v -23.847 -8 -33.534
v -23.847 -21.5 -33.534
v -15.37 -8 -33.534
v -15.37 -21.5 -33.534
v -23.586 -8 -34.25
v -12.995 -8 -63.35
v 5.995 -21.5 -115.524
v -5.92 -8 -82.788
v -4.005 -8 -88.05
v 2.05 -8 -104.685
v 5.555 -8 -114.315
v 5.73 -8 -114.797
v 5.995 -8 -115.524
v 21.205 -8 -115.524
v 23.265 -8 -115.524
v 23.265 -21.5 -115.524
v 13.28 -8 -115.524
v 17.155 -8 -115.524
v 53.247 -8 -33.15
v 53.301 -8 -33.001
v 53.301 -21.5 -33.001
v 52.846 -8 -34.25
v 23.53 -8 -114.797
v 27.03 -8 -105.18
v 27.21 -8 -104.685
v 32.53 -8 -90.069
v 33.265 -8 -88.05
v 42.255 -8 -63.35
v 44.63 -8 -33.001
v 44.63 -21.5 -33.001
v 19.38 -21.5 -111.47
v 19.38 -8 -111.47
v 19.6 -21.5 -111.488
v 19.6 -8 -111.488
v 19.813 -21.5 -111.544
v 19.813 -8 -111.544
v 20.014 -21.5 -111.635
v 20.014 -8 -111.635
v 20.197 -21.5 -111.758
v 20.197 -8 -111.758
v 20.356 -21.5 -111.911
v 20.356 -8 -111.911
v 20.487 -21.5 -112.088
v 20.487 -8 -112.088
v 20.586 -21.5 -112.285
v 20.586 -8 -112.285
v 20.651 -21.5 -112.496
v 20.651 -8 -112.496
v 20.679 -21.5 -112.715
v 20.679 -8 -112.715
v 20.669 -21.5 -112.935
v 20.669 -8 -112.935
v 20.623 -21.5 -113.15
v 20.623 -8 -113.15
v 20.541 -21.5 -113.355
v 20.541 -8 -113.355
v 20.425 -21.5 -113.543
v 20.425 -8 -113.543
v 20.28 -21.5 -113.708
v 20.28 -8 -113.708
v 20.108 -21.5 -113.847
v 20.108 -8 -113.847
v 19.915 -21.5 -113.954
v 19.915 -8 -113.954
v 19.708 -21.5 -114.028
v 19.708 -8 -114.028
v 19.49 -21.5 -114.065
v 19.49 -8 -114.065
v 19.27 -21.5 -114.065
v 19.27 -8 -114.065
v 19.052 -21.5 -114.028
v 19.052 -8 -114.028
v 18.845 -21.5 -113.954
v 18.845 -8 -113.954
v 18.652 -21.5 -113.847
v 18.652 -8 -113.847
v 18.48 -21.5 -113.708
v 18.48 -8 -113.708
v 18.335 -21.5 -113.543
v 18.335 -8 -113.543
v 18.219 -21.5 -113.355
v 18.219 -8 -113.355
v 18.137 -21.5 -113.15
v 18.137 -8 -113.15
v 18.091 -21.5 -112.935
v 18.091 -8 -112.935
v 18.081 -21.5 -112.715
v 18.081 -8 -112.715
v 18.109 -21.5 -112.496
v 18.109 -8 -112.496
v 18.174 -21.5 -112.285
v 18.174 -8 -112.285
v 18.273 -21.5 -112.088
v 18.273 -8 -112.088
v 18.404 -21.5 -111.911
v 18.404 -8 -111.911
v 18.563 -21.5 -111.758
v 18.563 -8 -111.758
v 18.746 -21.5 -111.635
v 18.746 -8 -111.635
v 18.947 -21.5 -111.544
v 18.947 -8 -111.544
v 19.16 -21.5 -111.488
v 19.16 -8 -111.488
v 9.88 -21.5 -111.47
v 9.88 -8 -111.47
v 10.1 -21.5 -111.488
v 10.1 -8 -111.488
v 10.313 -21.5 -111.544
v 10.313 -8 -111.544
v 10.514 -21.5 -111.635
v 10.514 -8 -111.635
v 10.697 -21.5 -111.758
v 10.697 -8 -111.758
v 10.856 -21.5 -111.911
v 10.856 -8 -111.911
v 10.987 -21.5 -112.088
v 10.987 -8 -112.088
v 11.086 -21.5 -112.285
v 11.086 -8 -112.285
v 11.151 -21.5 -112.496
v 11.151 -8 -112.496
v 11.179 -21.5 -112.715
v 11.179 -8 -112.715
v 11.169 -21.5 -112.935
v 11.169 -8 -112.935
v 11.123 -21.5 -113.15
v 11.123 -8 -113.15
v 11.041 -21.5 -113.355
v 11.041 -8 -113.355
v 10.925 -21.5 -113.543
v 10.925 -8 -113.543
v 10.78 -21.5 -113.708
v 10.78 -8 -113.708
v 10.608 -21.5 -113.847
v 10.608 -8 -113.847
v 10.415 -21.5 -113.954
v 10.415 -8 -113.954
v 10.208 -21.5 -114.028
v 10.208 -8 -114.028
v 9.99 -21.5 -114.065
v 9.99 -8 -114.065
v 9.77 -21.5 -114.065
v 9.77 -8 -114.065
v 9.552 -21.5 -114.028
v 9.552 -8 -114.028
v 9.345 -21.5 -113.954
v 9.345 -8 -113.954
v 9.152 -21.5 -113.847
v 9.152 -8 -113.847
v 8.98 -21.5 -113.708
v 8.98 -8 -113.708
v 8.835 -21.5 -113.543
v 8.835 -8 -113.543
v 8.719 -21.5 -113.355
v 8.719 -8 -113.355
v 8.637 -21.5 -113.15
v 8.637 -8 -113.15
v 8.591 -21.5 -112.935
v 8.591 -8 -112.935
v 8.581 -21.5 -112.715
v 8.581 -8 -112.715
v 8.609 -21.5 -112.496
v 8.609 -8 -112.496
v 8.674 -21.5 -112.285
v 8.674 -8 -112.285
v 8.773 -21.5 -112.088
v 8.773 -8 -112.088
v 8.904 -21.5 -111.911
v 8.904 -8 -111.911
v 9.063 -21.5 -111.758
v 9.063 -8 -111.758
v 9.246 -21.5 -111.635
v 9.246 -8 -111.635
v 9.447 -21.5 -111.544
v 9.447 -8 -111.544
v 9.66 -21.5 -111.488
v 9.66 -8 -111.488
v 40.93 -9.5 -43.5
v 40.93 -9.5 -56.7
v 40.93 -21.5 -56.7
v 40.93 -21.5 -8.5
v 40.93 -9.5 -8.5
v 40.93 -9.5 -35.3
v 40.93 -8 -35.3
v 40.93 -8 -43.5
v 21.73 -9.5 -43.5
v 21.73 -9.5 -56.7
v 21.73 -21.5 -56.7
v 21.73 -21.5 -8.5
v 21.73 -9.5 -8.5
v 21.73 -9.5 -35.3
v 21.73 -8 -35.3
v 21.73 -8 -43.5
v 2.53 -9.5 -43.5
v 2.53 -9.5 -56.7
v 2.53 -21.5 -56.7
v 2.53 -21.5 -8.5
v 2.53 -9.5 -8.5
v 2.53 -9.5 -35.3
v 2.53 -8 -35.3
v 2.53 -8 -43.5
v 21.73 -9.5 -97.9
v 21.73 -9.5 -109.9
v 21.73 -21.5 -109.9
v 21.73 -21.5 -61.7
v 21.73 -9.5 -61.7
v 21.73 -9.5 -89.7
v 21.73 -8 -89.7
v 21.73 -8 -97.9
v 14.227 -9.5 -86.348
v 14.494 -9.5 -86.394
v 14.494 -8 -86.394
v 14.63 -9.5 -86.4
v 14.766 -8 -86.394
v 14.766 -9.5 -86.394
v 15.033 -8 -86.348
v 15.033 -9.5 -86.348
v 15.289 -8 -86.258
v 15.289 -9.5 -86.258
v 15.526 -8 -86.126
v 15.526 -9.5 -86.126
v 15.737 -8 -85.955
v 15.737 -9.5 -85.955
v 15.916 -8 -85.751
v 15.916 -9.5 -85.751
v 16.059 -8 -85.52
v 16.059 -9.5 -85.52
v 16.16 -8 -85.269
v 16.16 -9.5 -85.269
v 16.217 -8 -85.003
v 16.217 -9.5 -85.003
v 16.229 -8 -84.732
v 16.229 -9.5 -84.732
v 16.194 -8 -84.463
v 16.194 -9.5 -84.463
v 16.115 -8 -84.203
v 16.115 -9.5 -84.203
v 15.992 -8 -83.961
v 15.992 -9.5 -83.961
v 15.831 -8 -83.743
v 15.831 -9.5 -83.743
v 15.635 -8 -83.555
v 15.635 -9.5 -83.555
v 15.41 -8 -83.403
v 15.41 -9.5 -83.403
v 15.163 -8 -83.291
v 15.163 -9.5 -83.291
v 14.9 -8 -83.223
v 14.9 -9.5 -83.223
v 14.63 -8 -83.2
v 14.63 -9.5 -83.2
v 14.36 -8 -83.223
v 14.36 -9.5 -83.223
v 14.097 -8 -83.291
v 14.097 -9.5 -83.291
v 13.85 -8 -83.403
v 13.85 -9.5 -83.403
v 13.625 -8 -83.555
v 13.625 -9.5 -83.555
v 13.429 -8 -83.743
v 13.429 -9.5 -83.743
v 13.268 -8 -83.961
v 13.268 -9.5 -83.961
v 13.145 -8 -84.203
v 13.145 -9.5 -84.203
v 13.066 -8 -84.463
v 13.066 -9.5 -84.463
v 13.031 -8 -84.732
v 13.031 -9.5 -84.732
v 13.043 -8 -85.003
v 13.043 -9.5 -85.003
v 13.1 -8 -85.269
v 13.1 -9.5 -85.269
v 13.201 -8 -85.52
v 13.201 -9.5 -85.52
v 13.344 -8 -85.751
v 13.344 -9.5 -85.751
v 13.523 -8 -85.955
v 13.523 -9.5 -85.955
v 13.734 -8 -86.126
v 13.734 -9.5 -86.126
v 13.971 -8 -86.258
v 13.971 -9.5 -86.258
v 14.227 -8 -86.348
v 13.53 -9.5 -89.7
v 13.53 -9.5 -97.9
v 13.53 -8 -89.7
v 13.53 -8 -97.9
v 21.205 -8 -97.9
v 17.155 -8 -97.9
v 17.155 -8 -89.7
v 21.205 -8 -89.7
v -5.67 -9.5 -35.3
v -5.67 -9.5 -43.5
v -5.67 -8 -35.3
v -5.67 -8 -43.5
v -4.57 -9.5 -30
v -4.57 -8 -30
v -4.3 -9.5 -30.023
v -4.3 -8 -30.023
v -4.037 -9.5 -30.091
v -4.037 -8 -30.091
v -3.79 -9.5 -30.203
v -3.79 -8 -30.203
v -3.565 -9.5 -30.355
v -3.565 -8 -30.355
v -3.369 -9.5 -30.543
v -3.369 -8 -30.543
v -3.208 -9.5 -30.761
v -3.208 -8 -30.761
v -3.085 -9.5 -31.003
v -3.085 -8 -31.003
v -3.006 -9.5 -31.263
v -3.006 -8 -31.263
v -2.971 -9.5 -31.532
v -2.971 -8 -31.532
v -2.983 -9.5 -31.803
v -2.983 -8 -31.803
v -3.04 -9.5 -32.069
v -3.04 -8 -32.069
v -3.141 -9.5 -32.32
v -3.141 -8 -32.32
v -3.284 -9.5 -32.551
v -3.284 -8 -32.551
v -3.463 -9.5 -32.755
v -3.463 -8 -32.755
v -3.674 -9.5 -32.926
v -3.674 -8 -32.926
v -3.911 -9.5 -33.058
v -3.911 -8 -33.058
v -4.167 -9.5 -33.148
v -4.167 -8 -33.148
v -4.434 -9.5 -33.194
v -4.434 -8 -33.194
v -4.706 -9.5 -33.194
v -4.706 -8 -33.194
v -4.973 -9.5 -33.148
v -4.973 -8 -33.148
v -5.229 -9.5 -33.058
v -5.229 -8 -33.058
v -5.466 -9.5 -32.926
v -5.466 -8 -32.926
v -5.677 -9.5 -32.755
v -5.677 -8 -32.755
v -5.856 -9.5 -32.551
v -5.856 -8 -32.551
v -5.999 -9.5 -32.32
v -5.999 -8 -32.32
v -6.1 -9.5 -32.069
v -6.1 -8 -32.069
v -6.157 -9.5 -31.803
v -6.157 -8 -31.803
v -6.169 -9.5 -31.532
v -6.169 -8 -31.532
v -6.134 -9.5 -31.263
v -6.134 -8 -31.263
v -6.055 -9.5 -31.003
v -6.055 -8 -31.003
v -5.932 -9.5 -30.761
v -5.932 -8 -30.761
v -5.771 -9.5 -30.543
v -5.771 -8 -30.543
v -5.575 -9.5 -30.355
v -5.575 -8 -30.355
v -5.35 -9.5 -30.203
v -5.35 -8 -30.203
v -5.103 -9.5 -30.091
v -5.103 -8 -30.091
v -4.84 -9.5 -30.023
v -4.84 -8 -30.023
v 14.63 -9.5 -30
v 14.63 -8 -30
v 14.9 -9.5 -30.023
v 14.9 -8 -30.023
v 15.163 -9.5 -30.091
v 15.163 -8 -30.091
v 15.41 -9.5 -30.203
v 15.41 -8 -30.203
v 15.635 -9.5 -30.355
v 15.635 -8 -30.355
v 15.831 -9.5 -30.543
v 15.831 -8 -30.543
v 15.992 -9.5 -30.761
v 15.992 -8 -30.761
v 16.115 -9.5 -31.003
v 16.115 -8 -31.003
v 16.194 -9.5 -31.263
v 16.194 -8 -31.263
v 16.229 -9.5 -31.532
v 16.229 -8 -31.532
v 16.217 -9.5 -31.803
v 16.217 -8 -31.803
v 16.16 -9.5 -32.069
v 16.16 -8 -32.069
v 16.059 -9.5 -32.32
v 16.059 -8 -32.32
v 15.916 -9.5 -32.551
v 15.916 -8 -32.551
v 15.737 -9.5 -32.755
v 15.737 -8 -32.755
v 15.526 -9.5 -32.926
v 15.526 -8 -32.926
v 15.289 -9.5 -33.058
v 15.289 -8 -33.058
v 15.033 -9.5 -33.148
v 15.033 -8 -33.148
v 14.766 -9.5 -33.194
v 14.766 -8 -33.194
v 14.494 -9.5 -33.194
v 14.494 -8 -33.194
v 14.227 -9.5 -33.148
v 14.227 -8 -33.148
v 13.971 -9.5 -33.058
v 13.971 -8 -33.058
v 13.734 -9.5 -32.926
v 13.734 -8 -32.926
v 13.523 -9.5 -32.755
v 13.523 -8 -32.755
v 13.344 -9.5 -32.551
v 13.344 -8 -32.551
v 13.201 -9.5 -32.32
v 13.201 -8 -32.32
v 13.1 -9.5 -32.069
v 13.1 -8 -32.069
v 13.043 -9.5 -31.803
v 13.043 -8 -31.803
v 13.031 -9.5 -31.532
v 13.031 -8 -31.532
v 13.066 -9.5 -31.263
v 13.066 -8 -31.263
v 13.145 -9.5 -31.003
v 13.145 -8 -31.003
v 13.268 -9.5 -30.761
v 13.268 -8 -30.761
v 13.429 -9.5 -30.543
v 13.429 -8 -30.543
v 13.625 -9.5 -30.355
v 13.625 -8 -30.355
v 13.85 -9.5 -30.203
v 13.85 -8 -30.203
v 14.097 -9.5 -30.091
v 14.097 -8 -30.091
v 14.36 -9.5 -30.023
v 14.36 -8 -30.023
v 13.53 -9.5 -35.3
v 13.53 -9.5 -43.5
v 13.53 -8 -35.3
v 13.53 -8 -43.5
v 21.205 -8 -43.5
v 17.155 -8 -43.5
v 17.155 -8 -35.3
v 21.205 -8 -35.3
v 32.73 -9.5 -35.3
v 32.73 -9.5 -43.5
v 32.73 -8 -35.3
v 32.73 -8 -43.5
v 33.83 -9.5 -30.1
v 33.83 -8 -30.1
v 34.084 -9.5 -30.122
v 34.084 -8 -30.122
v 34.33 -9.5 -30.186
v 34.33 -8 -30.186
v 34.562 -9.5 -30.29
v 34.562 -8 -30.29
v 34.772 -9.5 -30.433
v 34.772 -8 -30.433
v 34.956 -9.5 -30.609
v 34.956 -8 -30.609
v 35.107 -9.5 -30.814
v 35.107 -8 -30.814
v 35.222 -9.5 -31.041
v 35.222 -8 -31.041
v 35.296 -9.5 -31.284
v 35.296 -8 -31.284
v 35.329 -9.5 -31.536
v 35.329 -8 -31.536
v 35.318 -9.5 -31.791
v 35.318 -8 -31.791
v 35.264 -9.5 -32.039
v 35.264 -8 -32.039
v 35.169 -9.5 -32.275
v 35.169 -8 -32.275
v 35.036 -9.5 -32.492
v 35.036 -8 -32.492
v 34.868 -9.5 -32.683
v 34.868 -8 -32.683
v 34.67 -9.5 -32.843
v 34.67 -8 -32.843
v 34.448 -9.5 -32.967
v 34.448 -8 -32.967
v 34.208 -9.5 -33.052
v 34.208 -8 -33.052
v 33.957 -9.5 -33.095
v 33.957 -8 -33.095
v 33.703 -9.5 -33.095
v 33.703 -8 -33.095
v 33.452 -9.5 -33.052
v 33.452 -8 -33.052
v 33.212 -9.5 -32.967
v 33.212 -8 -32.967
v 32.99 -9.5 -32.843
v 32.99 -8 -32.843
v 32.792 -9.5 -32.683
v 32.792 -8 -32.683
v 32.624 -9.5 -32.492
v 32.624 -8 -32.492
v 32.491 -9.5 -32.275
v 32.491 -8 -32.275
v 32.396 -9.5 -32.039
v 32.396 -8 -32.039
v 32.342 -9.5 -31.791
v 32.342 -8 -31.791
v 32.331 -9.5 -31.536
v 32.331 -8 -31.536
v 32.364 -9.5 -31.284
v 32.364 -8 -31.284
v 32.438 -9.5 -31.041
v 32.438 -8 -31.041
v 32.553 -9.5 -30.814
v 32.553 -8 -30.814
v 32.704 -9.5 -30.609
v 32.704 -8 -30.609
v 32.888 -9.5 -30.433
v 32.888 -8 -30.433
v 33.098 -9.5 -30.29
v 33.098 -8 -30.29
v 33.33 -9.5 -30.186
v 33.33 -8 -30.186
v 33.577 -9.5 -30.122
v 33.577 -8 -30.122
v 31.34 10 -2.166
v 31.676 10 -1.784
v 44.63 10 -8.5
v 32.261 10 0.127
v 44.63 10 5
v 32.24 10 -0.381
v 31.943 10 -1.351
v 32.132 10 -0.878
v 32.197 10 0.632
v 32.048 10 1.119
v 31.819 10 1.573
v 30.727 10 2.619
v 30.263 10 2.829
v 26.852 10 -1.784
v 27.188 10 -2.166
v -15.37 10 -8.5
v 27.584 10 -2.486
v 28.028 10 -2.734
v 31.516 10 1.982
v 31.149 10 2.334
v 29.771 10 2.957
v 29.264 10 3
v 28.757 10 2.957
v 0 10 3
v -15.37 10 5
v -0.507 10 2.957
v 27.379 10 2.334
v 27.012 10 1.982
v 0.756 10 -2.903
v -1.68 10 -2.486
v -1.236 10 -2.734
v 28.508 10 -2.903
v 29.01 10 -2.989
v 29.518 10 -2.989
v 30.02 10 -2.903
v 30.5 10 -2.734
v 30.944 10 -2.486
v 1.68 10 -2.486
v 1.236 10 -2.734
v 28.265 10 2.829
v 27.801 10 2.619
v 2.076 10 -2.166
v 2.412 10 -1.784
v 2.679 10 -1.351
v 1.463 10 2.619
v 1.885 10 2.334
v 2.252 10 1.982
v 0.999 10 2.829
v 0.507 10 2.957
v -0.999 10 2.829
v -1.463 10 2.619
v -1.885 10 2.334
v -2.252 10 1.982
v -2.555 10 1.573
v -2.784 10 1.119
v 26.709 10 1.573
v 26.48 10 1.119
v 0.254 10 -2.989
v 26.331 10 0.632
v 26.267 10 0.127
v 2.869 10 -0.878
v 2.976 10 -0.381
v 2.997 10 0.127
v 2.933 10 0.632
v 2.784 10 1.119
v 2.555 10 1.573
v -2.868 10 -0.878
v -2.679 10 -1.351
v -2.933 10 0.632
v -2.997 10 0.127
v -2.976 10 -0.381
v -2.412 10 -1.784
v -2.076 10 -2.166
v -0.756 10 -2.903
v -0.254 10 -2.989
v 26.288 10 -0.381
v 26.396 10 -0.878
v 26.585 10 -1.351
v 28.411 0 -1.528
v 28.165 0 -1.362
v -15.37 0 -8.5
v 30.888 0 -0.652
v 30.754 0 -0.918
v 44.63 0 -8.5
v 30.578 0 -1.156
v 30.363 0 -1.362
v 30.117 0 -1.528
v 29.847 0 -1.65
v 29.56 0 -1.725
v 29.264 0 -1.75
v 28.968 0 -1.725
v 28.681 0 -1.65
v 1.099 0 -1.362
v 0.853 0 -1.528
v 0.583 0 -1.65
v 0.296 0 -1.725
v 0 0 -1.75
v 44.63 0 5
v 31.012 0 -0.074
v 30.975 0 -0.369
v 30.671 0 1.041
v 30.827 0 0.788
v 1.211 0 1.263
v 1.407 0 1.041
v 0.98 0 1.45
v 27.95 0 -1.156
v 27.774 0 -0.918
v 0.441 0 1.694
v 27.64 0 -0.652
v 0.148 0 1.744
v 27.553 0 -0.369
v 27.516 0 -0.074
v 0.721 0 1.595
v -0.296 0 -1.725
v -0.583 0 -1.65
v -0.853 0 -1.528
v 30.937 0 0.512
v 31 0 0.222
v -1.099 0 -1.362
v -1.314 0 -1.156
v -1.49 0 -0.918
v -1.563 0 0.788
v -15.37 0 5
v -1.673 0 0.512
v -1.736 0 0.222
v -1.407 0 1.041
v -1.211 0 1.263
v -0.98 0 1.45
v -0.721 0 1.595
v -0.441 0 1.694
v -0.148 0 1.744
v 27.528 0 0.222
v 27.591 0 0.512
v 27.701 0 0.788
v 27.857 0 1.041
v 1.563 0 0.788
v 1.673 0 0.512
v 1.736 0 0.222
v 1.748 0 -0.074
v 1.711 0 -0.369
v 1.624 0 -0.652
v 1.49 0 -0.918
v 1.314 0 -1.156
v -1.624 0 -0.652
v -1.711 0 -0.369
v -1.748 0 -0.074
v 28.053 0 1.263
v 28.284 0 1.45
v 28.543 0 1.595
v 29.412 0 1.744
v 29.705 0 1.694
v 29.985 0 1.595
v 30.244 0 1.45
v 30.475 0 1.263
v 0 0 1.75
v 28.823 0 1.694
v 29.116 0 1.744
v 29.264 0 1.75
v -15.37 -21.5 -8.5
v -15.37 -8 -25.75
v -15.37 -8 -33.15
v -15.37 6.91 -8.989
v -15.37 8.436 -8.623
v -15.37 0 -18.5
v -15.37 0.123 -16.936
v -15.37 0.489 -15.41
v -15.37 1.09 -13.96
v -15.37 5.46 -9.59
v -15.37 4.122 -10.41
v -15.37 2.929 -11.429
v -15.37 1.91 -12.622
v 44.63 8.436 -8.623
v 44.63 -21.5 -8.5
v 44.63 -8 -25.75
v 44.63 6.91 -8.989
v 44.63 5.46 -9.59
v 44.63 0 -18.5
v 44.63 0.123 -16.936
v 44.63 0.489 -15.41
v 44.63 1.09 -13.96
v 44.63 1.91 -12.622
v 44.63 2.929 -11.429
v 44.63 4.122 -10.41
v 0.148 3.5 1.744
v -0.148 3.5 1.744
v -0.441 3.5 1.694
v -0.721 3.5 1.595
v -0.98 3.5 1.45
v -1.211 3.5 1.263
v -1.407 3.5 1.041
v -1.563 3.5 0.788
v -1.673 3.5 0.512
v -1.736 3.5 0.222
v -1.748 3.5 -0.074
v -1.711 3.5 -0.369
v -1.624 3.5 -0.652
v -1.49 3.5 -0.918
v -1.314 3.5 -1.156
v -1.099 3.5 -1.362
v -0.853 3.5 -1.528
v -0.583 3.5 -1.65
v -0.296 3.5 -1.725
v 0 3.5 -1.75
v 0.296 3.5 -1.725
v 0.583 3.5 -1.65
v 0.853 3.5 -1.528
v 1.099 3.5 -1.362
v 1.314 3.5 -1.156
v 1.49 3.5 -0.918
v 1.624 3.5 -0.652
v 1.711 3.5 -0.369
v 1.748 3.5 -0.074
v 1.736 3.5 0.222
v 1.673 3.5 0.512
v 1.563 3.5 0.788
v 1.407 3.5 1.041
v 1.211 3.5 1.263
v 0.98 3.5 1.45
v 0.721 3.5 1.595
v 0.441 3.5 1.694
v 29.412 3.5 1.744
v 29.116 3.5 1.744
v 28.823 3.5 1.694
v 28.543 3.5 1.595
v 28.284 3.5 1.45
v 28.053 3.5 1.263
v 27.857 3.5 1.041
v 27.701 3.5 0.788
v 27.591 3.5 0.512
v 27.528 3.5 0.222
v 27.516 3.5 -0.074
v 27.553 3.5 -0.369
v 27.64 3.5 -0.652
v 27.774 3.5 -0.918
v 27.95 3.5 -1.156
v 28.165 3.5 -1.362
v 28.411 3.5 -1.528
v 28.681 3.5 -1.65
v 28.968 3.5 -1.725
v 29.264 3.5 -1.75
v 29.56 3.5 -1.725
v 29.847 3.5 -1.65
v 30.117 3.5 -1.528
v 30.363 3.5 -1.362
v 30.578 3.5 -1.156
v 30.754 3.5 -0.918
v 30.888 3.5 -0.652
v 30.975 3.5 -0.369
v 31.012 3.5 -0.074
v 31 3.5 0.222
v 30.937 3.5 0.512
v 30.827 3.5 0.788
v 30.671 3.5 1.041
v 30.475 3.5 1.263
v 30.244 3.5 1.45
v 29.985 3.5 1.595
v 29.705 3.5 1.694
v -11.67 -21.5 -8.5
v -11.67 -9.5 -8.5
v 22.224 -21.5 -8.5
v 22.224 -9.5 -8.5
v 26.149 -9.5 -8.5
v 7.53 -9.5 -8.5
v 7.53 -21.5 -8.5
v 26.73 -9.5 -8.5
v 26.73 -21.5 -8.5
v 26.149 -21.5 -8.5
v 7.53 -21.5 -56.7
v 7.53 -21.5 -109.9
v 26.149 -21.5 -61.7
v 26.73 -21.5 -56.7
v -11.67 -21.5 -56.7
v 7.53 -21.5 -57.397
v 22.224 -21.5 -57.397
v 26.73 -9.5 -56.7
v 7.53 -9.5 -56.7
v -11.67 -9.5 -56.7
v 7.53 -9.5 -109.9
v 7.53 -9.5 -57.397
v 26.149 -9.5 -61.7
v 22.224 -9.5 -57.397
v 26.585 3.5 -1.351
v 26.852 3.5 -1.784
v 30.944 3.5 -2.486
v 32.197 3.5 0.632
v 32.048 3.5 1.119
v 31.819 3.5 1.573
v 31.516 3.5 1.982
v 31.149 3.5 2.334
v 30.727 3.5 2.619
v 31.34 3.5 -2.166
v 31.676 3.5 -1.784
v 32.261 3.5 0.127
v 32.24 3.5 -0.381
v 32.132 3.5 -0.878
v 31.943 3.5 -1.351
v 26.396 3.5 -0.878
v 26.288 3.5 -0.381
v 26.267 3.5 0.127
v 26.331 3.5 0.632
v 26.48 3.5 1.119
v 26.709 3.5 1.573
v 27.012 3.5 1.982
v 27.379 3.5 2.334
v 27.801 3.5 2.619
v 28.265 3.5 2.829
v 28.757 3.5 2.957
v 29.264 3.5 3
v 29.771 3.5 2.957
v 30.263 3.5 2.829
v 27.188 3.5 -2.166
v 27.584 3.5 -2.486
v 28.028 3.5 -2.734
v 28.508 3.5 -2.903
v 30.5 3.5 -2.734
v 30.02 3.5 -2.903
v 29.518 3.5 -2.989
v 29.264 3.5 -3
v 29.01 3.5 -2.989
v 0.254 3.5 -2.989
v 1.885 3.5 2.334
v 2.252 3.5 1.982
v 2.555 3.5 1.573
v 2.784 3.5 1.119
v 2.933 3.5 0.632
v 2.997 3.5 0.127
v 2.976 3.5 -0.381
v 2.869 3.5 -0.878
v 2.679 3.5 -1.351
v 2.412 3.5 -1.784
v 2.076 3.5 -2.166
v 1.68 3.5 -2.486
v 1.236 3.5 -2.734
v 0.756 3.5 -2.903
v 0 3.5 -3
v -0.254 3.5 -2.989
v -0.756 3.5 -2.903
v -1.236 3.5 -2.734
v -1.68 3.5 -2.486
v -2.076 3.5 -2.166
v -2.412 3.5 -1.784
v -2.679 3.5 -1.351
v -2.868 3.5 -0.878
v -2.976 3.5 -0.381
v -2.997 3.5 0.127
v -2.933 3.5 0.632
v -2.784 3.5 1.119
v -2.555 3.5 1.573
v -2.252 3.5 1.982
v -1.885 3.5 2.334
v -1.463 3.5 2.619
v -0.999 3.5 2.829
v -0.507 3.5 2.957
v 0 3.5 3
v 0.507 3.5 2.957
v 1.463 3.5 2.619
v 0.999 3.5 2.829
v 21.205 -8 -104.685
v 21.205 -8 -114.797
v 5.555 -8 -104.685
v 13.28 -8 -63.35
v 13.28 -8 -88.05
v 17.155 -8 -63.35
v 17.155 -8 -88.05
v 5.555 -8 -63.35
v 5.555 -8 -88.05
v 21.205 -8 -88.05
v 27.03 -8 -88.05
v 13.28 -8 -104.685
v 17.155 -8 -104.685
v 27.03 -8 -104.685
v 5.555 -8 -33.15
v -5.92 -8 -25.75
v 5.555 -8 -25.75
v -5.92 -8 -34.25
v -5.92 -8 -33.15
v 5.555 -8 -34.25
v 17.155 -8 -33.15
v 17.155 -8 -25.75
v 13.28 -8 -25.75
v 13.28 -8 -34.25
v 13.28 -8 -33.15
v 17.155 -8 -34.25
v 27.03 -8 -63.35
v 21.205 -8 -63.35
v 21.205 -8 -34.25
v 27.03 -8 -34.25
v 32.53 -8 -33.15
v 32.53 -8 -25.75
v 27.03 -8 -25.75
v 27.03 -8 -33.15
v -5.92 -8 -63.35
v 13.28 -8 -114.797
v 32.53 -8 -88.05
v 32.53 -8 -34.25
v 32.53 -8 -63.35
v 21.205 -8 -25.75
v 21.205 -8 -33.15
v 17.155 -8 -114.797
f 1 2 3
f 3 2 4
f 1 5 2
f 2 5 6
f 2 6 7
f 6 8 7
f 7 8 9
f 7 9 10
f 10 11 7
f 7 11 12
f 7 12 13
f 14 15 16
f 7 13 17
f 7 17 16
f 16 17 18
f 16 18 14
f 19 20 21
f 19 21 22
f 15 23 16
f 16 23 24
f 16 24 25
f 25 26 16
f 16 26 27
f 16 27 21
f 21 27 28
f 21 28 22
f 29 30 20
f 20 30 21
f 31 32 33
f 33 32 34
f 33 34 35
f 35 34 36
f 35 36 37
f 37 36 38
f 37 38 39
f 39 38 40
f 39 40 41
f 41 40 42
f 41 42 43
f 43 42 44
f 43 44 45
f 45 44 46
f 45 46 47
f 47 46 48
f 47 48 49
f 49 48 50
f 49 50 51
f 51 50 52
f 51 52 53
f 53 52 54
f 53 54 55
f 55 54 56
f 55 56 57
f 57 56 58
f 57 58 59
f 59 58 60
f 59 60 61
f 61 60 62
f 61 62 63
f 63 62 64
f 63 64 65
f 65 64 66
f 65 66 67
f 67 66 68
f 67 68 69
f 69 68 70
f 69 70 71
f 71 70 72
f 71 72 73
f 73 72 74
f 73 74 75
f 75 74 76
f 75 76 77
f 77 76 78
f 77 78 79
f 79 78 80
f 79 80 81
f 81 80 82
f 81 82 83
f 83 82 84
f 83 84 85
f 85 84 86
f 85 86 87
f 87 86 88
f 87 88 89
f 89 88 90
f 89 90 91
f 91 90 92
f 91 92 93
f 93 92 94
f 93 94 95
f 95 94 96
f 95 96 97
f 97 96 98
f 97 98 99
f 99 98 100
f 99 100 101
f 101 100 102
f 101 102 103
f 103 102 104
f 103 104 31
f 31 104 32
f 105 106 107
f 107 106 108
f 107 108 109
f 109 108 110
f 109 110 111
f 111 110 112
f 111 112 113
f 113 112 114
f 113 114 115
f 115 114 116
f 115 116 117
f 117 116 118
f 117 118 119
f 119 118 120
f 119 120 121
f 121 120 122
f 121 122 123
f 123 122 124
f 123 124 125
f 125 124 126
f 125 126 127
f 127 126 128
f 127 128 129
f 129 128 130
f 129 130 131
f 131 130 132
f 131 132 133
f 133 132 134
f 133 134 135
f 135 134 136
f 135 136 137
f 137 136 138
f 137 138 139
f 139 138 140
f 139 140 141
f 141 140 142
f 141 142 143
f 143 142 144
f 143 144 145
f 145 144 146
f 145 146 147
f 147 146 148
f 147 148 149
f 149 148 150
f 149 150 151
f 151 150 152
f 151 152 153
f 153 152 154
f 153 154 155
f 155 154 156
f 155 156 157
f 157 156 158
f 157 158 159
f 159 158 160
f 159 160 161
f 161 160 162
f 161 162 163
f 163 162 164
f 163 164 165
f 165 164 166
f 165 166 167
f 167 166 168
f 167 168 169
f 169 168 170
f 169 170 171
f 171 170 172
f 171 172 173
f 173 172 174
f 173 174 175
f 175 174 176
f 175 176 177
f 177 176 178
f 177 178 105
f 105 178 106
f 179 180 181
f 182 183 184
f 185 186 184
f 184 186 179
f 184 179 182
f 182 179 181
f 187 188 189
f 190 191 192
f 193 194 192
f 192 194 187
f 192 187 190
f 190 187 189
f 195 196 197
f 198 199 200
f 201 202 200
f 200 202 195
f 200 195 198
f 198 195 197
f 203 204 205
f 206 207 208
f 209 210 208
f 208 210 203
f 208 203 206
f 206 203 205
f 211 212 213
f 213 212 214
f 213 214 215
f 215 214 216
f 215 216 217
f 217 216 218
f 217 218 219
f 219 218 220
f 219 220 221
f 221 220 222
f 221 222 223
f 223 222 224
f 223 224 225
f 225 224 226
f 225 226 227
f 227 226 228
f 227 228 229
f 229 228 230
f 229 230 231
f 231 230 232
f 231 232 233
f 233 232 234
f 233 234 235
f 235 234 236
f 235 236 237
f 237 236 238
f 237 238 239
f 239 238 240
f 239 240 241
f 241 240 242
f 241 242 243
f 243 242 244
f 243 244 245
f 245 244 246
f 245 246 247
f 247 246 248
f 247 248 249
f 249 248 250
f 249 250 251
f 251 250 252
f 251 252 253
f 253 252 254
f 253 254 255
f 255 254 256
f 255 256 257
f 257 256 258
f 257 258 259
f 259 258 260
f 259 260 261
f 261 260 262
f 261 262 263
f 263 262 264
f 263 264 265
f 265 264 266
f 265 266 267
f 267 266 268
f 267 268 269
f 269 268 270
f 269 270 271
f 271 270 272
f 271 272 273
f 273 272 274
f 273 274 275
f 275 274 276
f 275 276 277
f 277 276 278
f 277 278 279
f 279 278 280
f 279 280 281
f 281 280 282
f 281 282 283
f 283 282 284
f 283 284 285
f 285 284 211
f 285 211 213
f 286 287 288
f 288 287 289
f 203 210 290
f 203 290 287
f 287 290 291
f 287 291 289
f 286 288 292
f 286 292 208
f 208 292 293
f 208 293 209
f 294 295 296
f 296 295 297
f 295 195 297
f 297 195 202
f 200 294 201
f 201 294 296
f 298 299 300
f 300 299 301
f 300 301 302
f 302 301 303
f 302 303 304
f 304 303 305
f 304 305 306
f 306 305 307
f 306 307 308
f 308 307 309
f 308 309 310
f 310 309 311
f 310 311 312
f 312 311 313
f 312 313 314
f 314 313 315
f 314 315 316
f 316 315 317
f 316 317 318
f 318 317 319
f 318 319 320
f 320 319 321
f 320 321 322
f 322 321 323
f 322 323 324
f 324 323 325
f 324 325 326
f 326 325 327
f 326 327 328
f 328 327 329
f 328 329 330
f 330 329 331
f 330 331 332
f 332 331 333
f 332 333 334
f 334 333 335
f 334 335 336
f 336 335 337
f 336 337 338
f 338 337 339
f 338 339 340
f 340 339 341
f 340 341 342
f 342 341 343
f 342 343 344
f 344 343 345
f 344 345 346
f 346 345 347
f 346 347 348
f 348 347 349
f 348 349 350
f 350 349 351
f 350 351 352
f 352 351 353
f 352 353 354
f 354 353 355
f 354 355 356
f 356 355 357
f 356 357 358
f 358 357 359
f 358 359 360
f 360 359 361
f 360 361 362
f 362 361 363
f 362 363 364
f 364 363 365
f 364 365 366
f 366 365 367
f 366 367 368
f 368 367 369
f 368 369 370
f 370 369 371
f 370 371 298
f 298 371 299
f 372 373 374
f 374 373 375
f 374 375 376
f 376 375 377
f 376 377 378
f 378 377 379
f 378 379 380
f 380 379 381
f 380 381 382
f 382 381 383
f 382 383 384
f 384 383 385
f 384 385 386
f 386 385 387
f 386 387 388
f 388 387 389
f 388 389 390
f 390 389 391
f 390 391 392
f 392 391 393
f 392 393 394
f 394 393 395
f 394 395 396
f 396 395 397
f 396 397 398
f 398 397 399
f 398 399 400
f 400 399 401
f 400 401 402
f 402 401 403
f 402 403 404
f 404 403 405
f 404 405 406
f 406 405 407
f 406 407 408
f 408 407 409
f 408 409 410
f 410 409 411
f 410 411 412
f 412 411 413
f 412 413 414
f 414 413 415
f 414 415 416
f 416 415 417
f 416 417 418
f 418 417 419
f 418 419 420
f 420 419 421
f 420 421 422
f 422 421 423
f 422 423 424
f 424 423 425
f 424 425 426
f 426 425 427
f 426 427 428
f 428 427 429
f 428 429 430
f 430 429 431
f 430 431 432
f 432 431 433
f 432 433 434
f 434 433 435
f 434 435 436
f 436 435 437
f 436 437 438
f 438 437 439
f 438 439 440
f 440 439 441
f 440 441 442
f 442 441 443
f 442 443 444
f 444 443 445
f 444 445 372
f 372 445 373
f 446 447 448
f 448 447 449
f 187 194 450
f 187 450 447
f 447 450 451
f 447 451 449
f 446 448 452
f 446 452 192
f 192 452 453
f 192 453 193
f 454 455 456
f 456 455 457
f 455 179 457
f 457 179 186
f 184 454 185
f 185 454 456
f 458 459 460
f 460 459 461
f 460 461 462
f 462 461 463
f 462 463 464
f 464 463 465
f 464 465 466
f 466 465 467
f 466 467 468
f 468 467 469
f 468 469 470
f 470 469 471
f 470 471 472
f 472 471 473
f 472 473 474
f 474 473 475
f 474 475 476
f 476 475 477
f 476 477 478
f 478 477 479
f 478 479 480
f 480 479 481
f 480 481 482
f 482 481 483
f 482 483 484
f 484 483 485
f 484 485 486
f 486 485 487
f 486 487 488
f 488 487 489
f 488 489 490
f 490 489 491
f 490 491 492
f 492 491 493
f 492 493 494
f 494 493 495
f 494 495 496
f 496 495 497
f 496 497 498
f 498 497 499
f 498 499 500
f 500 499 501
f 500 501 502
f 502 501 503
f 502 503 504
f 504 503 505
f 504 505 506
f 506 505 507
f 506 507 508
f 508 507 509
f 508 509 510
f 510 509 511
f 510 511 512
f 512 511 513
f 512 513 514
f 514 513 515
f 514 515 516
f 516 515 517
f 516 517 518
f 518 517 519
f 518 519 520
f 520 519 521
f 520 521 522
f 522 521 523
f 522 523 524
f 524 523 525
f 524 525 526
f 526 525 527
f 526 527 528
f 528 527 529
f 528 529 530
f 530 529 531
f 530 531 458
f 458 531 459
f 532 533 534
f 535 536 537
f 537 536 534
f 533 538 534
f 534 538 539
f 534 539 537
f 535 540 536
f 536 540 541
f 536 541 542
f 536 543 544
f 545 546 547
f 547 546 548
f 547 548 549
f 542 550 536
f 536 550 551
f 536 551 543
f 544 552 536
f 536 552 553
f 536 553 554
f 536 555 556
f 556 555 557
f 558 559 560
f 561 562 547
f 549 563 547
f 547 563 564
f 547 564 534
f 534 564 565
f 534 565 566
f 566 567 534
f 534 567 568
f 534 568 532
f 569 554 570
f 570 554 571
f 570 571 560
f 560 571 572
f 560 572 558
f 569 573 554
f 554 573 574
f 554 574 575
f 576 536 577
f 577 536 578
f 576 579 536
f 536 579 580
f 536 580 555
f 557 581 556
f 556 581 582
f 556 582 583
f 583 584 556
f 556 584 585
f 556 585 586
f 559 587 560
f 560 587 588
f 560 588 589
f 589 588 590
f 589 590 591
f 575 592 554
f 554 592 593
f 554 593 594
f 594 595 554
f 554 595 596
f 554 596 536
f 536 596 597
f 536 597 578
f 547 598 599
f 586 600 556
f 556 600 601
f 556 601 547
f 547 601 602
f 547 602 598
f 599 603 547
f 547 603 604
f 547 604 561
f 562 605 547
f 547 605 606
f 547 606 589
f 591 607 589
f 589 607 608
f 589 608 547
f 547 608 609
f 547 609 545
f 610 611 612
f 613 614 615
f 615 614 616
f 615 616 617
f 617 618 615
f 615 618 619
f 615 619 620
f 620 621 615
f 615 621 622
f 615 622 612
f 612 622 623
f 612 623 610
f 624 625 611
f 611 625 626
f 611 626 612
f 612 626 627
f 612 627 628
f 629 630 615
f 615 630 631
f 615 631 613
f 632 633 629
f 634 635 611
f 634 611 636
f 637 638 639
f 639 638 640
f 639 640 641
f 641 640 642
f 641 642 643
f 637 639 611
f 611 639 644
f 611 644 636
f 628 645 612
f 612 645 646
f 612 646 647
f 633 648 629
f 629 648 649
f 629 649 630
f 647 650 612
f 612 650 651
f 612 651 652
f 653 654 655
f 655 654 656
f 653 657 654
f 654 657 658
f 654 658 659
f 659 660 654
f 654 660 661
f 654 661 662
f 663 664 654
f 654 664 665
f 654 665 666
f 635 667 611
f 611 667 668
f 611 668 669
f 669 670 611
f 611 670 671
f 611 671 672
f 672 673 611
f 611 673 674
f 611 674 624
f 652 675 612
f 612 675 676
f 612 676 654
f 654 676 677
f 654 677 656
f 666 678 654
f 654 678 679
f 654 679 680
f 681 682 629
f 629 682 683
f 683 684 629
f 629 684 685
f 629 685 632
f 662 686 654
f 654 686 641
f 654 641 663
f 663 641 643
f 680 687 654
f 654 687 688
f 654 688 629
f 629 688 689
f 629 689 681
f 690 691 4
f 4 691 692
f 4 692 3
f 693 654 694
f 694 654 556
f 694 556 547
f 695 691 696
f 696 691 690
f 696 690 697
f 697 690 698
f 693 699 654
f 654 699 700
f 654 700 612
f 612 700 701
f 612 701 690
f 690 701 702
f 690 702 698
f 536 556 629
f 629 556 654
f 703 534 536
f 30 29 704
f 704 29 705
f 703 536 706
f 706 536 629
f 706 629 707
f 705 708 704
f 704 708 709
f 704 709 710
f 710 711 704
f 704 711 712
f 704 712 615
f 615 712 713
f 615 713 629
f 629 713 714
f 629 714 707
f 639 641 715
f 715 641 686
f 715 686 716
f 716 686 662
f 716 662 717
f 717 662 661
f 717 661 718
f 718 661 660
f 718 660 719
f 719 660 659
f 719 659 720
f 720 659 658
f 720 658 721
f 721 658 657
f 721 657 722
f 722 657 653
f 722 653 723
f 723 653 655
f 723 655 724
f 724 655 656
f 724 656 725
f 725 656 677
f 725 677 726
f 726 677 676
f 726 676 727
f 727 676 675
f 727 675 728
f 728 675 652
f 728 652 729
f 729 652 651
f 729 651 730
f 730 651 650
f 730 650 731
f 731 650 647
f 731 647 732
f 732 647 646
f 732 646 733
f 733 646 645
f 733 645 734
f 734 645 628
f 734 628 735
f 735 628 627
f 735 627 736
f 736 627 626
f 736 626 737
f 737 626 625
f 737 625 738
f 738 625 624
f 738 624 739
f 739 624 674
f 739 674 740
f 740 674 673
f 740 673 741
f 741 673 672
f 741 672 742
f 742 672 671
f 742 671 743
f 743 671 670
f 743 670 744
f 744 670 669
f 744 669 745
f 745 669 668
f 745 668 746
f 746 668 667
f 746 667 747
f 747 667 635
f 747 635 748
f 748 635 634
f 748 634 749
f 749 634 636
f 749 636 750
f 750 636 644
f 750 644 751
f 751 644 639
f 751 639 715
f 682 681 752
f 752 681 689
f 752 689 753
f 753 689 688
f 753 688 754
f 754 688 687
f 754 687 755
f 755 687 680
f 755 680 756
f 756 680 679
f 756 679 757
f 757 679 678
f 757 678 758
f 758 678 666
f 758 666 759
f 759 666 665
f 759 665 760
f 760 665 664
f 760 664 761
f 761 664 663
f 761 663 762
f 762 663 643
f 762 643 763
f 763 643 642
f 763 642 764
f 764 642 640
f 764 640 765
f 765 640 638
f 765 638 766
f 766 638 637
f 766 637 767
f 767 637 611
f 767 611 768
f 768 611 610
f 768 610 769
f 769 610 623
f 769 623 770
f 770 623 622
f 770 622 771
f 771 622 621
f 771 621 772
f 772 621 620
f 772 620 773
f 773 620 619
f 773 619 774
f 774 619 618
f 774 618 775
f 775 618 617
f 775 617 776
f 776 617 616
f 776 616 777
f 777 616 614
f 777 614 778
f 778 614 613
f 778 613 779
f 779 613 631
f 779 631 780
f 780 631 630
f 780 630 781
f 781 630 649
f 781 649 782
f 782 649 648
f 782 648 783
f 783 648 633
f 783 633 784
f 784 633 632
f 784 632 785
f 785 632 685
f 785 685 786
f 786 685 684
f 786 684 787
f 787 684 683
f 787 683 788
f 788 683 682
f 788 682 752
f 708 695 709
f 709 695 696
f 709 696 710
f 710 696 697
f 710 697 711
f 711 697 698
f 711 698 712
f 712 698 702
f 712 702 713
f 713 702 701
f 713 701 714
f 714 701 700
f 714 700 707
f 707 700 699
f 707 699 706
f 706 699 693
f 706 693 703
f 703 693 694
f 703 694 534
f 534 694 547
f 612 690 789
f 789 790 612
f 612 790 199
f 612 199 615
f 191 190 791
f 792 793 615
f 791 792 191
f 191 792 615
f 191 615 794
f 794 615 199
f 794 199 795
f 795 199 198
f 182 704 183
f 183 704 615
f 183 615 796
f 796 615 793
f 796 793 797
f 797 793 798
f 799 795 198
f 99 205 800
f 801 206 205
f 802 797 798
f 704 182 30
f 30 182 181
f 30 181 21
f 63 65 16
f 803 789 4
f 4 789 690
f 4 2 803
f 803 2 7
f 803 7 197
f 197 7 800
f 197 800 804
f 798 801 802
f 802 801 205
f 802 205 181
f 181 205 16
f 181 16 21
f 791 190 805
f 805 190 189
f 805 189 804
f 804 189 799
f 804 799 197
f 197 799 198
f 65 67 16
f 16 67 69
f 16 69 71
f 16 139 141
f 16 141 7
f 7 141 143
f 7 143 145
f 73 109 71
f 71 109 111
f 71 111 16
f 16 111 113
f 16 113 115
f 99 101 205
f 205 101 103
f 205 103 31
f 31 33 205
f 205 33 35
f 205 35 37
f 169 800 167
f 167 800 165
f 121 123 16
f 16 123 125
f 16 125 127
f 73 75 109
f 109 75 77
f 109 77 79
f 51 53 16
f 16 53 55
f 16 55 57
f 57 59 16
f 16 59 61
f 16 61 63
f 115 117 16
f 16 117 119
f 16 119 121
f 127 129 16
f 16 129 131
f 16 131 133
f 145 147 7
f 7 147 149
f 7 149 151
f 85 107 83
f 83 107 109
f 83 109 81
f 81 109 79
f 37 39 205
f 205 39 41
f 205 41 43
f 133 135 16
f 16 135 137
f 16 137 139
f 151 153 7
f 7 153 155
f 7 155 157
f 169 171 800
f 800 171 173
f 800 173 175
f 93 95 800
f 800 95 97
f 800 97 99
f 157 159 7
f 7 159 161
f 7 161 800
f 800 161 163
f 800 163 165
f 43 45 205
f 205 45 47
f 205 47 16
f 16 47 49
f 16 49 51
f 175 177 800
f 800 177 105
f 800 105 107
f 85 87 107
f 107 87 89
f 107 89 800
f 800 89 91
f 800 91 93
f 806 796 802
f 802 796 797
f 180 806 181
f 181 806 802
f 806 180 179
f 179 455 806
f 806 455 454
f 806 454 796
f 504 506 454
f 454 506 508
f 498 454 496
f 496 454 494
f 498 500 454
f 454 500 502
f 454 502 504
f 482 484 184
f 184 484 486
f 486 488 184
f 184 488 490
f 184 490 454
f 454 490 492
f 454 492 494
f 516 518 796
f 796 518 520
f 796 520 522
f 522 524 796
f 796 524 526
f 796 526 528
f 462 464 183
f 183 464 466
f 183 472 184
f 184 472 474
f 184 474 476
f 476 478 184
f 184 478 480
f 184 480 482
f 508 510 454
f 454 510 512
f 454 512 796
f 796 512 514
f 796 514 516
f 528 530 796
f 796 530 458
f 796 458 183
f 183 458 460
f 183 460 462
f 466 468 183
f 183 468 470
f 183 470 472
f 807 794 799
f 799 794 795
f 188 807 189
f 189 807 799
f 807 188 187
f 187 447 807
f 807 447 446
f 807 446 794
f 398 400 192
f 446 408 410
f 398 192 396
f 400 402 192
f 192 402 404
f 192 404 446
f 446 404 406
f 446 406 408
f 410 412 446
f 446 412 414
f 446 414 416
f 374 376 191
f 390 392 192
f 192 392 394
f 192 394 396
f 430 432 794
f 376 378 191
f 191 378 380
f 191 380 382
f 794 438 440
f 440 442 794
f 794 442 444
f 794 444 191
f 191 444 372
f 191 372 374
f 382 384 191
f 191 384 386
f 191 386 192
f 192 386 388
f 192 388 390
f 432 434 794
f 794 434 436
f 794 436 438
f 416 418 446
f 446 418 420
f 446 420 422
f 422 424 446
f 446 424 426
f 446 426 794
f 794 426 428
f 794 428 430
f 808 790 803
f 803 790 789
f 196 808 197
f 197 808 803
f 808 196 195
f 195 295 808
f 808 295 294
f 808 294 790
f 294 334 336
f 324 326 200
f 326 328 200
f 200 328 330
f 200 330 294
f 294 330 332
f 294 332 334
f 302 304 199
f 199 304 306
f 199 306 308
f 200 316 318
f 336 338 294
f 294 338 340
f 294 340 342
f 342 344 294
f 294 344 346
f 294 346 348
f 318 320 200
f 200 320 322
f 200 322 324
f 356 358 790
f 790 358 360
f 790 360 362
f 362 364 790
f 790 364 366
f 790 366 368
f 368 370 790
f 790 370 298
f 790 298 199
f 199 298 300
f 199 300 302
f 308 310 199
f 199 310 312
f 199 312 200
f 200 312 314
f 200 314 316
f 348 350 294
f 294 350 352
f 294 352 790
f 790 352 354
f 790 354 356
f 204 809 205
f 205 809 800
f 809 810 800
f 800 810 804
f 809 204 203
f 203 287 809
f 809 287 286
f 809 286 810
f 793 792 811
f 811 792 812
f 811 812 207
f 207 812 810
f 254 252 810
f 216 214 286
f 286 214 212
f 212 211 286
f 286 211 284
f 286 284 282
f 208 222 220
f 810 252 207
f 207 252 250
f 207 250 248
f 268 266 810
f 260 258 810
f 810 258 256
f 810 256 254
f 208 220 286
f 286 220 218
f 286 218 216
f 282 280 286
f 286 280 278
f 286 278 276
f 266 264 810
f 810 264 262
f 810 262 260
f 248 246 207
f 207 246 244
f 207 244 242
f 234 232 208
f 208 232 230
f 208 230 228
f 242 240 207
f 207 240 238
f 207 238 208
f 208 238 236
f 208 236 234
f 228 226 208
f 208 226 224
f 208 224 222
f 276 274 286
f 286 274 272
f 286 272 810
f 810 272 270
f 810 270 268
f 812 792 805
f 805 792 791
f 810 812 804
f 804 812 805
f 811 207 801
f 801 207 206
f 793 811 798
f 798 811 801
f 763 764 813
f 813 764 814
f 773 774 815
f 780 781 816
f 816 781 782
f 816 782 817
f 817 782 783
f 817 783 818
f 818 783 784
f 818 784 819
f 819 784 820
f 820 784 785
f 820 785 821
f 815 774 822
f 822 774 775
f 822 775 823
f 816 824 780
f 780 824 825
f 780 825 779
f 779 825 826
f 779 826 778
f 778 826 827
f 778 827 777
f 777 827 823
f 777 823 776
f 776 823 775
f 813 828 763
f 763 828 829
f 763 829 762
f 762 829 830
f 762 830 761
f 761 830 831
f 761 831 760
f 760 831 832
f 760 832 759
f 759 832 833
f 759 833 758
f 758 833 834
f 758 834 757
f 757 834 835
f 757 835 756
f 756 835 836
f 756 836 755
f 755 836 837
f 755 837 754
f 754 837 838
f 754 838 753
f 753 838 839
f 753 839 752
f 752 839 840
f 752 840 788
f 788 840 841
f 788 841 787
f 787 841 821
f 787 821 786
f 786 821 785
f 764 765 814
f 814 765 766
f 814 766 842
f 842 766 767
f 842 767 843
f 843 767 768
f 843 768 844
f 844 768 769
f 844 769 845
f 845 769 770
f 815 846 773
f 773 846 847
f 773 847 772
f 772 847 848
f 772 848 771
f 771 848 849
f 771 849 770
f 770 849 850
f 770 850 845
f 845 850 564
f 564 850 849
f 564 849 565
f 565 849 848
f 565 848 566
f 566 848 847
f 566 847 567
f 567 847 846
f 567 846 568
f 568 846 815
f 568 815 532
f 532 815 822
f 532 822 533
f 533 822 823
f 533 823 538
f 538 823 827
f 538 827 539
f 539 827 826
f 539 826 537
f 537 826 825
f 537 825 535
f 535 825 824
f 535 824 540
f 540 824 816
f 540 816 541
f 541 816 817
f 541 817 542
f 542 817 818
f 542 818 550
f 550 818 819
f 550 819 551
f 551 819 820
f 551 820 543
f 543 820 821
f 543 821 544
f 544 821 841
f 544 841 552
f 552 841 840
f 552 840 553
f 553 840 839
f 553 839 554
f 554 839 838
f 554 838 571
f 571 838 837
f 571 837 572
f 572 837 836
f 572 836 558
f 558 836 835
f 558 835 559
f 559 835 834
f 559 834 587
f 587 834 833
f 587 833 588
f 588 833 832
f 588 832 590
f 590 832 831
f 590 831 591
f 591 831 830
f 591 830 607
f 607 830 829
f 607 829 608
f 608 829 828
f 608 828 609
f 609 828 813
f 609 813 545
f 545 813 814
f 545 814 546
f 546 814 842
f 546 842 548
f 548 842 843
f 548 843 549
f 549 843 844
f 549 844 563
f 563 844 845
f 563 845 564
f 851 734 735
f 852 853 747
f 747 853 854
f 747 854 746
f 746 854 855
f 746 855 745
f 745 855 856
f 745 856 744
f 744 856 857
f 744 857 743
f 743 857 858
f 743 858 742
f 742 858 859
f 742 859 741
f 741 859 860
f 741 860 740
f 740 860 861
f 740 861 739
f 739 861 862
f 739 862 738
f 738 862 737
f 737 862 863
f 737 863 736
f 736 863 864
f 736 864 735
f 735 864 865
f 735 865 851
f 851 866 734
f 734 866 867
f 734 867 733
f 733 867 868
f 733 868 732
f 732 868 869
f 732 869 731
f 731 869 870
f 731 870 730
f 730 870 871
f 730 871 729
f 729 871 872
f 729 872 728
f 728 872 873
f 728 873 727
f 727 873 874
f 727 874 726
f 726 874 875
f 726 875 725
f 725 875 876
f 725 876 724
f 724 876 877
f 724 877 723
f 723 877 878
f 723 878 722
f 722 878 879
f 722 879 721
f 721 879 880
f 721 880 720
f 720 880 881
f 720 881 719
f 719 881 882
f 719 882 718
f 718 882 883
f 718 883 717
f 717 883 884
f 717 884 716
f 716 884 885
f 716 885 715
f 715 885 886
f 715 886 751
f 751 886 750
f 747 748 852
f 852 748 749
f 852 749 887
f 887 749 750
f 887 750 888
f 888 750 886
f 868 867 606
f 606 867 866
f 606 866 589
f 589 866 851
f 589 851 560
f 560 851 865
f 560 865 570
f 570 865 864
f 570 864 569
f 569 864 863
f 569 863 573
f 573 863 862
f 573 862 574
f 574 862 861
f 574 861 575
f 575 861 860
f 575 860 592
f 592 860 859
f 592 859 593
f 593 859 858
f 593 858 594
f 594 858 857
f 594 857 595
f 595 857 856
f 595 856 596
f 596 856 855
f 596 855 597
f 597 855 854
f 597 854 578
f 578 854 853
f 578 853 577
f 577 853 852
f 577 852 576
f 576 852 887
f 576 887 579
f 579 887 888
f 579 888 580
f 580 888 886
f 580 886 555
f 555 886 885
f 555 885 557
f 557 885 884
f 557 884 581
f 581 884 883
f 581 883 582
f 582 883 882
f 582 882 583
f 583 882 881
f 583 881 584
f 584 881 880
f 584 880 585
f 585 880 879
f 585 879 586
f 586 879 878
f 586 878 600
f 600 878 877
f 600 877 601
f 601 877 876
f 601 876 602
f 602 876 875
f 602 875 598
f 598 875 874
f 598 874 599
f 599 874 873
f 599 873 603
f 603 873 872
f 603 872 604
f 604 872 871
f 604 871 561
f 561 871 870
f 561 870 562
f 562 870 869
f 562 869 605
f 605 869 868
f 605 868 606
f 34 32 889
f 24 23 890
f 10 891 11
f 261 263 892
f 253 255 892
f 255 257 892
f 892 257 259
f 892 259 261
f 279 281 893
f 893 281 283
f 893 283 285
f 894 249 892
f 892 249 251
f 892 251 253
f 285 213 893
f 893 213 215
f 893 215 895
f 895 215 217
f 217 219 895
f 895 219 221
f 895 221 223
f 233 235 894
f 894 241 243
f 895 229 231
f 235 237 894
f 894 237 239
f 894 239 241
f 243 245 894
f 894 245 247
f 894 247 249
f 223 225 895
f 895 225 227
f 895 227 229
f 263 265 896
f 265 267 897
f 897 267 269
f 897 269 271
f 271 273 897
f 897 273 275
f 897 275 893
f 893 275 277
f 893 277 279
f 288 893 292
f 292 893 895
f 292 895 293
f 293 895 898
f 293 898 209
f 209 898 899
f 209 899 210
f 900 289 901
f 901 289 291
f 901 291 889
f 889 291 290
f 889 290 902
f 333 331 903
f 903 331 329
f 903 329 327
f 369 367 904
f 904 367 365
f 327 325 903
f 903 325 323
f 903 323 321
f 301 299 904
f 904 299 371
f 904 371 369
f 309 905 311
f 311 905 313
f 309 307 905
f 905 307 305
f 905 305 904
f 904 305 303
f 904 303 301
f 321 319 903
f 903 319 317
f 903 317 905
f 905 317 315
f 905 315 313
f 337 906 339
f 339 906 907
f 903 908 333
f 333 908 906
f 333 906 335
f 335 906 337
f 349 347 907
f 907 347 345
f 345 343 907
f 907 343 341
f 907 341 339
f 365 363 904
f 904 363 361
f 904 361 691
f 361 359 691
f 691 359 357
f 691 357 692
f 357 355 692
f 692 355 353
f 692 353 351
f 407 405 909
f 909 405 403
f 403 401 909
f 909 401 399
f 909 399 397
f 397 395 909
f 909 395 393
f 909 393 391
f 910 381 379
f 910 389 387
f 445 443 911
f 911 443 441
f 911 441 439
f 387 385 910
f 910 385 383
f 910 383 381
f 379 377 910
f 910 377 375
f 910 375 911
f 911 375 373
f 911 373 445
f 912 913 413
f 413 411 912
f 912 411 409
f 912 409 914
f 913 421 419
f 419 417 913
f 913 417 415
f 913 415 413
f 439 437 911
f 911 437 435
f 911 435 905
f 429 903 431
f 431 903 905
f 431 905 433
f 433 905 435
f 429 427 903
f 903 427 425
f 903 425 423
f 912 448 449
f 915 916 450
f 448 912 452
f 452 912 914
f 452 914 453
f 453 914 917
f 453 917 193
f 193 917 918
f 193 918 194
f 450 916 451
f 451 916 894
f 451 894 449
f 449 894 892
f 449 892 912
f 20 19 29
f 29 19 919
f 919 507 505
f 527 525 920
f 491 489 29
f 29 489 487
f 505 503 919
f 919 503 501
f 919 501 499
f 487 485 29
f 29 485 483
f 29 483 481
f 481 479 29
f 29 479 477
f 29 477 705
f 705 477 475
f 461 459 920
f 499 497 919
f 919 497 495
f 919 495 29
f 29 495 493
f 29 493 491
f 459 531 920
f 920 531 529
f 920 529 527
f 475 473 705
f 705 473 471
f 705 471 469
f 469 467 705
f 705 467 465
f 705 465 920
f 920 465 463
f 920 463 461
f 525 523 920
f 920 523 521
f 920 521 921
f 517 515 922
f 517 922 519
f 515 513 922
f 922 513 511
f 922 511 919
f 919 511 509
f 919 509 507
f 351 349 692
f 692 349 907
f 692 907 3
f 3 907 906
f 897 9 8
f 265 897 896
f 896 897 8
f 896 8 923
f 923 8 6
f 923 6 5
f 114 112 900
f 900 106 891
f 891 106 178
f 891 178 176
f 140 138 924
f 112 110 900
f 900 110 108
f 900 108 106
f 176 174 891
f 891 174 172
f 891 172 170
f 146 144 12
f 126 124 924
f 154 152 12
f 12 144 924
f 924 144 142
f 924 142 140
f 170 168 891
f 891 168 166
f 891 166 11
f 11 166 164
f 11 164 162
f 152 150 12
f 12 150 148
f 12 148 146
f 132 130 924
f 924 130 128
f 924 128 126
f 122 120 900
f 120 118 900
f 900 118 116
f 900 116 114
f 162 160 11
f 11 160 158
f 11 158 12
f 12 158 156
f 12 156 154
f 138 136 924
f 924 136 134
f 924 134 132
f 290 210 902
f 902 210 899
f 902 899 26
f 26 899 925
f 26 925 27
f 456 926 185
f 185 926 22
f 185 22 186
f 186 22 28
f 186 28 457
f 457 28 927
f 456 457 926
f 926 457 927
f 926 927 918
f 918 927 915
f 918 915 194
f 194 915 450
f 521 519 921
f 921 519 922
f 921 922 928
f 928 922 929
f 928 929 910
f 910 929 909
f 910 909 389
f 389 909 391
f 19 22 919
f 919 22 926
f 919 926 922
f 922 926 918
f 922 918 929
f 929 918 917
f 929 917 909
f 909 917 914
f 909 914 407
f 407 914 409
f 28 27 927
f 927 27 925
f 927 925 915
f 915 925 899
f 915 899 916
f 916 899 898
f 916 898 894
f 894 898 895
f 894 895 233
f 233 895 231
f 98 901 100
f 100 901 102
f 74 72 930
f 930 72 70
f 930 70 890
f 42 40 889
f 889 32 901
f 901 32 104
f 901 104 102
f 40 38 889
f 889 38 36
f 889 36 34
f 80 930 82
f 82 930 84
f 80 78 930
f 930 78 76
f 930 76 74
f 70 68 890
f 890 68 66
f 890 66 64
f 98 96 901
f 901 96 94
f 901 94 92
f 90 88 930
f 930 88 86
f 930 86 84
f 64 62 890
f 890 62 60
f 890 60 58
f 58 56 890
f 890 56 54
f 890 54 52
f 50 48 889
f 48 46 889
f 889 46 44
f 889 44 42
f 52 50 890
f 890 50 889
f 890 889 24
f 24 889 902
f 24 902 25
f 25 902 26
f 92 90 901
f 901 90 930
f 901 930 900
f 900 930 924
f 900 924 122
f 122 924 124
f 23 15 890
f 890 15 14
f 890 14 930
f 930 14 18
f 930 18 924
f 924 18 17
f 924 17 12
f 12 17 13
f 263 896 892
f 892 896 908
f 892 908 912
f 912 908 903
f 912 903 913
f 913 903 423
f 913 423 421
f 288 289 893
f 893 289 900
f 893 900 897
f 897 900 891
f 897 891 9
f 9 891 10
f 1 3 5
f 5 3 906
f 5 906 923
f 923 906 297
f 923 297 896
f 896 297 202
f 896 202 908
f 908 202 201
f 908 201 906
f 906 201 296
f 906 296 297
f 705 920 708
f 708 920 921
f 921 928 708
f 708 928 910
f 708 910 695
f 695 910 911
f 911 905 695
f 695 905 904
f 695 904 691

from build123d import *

# Parameters (mm, degrees)
SKETCH2_W           = 60
SKETCH2_H           = 13.5
SKETCH2_R           = 1.75
BOSS_EXTRUDE1_DEPTH = 10
BOSS_EXTRUDE2_DEPTH = 21.5
BOSS_EXTRUDE3_DEPTH = 60
SKETCH10_R          = 1.3
CUT_EXTRUDE1_DEPTH  = 22.5
SKETCH12_W          = 14.2
SKETCH12_H          = 32.2
CUT_EXTRUDE2_DEPTH  = 12
CUT_EXTRUDE3_DEPTH  = 12
SKETCH14_R          = 3
CUT_EXTRUDE4_DEPTH  = 6.5
SKETCH15_R          = 1.6
SKETCH15_R_2        = 1.5
SKETCH15_W          = 8.2
SKETCH15_H          = 8.2
CUT_EXTRUDE5_DEPTH  = 22.5
CUT_EXTRUDE6_DEPTH  = 8
BOSS_EXTRUDE4_DEPTH = 60


with BuildPart() as part:
    # Sketch2 → Boss-Extrude1 (new body)
    with BuildSketch(Plane(origin=(0, 0, 0), x_dir=(1, 0, 0), z_dir=(0, 1, 0))):
        with Locations((14.63, 1.75)):
            Rectangle(SKETCH2_W, SKETCH2_H)
        Circle(SKETCH2_R, mode=Mode.SUBTRACT)
        with Locations((29.264, 0)):
            Circle(SKETCH2_R, mode=Mode.SUBTRACT)
    extrude(amount=BOSS_EXTRUDE1_DEPTH)



with BuildPart() as body_2:
    # Sketch5 → Boss-Extrude2 (new body)
    with BuildSketch(Plane(origin=(0, 0, 0), x_dir=(1, 0, 0), z_dir=(0, 1, 0))):
        Polygon((-15.37, 8.5), (-15.37, 33.533725193), (-23.847078232, 33.533725193), (5.995022283, 115.524222507), (23.264977717, 115.524222507), (53.301097121, 33.000662678), (44.63, 33.000662678), (44.63, 8.5), align=None)
    extrude(amount=-BOSS_EXTRUDE2_DEPTH)


with BuildPart() as part_1:
    add(part.part)

    add(body_2.part)  # Boss-Extrude3 merges body 2
    # Sketch8 → Boss-Extrude3 (add)
    with BuildSketch(Plane.ZY.offset(15.37)):
        with BuildLine():
            Line((-18.5, 0), (-8.5, 0))
            Line((-8.5, 0), (-8.5, 10))
            ThreePointArc((-8.5, 10), (-11.428932188, 2.928932188), (-18.5, 0))
        make_face()
    extrude(amount=-BOSS_EXTRUDE3_DEPTH)

    # Sketch10 → Cut-Extrude1 (cut, through all)
    with BuildSketch(Plane(origin=(0, 0, 0), x_dir=(1, 0, 0), z_dir=(0, 1, 0))):
        with Locations((19.38, 112.769736608)):
            Circle(SKETCH10_R)
        with Locations((9.88, 112.769736608)):
            Circle(SKETCH10_R)
    extrude(amount=-CUT_EXTRUDE1_DEPTH, mode=Mode.SUBTRACT)

    # Sketch12 → Cut-Extrude2 (cut)
    with BuildSketch(Plane.XZ.offset(21.5)):
        with Locations((14.63, -93.8)):
            Rectangle(SKETCH12_W, SKETCH12_H)
        with Locations((-4.57, -40.6)):
            Rectangle(SKETCH12_W, SKETCH12_H)
        with Locations((14.63, -40.6)):
            Rectangle(SKETCH12_W, SKETCH12_H)
        with Locations((33.83, -40.6)):
            Rectangle(SKETCH12_W, SKETCH12_H)
    extrude(amount=-CUT_EXTRUDE2_DEPTH, mode=Mode.SUBTRACT)

    # Sketch13 → Cut-Extrude3 (cut)
    with BuildSketch(Plane.XZ.offset(21.5)):
        Polygon((21.73, -77.7), (7.53, -77.7), (7.53, -61.7), (7.53, -57.396998359), (22.223753722, -57.396998359), (22.223753722, -8.5), (21.73, -8.5), (21.73, -24.5), (7.53, -24.5), (7.53, -8.5), (2.53, -8.5), (2.53, -24.5), (-11.67, -24.5), (-11.67, -8.5), (-11.67, -5.014735678), (40.93, -5.014735678), (40.93, -8.5), (40.93, -24.5), (26.73, -24.5), (26.73, -8.5), (26.149155121, -8.5), (26.149155121, -61.7), (21.73, -61.7), align=None)
    extrude(amount=-CUT_EXTRUDE3_DEPTH, mode=Mode.SUBTRACT)

    # Sketch14 → Cut-Extrude4 (cut)
    with BuildSketch(Plane(origin=(0, 10, 0), x_dir=(1, 0, 0), z_dir=(0, 1, 0))):
        Circle(SKETCH14_R)
        with Locations((29.264, 0)):
            Circle(SKETCH14_R)
    extrude(amount=-CUT_EXTRUDE4_DEPTH, mode=Mode.SUBTRACT)

    # Sketch15 → Cut-Extrude5 (cut, through all)
    with BuildSketch(Plane(origin=(0, 0, 0), x_dir=(1, 0, 0), z_dir=(0, 1, 0))):
        with Locations((-4.57, 31.6)):
            Circle(SKETCH15_R)
        with Locations((14.63, 31.6)):
            Circle(SKETCH15_R)
        with Locations((33.83, 31.6)):
            Circle(SKETCH15_R_2)
        with Locations((14.63, 84.8)):
            Circle(SKETCH15_R)
        with Locations((17.63, 93.8)):
            Rectangle(SKETCH15_W, SKETCH15_H)
        with Locations((17.63, 39.4)):
            Rectangle(SKETCH15_W, SKETCH15_H)
        with Locations((36.83, 39.4)):
            Rectangle(SKETCH15_W, SKETCH15_H)
        with Locations((-1.57, 39.4)):
            Rectangle(SKETCH15_W, SKETCH15_H)
    extrude(amount=-CUT_EXTRUDE5_DEPTH, mode=Mode.SUBTRACT)

    # Sketch16 → Cut-Extrude6 (cut)
    with BuildSketch(Plane(origin=(0, 0, 0), x_dir=(1, 0, 0), z_dir=(0, 1, 0))):
        Polygon((-15.37, 18.5), (44.63, 18.5), (44.63, 33.000662678), (53.301097121, 33.000662678), (23.264977717, 115.524222507), (5.995022283, 115.524222507), (-23.847078232, 33.533725193), (-15.37, 33.533725193), align=None)
    extrude(amount=-CUT_EXTRUDE6_DEPTH, mode=Mode.SUBTRACT)

    # Sketch17 → Boss-Extrude4 (add)
    with BuildSketch(Plane(origin=(44.63, 0, 0), x_dir=(0, 0, -1), z_dir=(1, 0, 0))):
        Polygon((18.5, 0), (25.750331339, -8), (18.5, -8), align=None)
    extrude(amount=-BOSS_EXTRUDE4_DEPTH)


solid = part_1.part
